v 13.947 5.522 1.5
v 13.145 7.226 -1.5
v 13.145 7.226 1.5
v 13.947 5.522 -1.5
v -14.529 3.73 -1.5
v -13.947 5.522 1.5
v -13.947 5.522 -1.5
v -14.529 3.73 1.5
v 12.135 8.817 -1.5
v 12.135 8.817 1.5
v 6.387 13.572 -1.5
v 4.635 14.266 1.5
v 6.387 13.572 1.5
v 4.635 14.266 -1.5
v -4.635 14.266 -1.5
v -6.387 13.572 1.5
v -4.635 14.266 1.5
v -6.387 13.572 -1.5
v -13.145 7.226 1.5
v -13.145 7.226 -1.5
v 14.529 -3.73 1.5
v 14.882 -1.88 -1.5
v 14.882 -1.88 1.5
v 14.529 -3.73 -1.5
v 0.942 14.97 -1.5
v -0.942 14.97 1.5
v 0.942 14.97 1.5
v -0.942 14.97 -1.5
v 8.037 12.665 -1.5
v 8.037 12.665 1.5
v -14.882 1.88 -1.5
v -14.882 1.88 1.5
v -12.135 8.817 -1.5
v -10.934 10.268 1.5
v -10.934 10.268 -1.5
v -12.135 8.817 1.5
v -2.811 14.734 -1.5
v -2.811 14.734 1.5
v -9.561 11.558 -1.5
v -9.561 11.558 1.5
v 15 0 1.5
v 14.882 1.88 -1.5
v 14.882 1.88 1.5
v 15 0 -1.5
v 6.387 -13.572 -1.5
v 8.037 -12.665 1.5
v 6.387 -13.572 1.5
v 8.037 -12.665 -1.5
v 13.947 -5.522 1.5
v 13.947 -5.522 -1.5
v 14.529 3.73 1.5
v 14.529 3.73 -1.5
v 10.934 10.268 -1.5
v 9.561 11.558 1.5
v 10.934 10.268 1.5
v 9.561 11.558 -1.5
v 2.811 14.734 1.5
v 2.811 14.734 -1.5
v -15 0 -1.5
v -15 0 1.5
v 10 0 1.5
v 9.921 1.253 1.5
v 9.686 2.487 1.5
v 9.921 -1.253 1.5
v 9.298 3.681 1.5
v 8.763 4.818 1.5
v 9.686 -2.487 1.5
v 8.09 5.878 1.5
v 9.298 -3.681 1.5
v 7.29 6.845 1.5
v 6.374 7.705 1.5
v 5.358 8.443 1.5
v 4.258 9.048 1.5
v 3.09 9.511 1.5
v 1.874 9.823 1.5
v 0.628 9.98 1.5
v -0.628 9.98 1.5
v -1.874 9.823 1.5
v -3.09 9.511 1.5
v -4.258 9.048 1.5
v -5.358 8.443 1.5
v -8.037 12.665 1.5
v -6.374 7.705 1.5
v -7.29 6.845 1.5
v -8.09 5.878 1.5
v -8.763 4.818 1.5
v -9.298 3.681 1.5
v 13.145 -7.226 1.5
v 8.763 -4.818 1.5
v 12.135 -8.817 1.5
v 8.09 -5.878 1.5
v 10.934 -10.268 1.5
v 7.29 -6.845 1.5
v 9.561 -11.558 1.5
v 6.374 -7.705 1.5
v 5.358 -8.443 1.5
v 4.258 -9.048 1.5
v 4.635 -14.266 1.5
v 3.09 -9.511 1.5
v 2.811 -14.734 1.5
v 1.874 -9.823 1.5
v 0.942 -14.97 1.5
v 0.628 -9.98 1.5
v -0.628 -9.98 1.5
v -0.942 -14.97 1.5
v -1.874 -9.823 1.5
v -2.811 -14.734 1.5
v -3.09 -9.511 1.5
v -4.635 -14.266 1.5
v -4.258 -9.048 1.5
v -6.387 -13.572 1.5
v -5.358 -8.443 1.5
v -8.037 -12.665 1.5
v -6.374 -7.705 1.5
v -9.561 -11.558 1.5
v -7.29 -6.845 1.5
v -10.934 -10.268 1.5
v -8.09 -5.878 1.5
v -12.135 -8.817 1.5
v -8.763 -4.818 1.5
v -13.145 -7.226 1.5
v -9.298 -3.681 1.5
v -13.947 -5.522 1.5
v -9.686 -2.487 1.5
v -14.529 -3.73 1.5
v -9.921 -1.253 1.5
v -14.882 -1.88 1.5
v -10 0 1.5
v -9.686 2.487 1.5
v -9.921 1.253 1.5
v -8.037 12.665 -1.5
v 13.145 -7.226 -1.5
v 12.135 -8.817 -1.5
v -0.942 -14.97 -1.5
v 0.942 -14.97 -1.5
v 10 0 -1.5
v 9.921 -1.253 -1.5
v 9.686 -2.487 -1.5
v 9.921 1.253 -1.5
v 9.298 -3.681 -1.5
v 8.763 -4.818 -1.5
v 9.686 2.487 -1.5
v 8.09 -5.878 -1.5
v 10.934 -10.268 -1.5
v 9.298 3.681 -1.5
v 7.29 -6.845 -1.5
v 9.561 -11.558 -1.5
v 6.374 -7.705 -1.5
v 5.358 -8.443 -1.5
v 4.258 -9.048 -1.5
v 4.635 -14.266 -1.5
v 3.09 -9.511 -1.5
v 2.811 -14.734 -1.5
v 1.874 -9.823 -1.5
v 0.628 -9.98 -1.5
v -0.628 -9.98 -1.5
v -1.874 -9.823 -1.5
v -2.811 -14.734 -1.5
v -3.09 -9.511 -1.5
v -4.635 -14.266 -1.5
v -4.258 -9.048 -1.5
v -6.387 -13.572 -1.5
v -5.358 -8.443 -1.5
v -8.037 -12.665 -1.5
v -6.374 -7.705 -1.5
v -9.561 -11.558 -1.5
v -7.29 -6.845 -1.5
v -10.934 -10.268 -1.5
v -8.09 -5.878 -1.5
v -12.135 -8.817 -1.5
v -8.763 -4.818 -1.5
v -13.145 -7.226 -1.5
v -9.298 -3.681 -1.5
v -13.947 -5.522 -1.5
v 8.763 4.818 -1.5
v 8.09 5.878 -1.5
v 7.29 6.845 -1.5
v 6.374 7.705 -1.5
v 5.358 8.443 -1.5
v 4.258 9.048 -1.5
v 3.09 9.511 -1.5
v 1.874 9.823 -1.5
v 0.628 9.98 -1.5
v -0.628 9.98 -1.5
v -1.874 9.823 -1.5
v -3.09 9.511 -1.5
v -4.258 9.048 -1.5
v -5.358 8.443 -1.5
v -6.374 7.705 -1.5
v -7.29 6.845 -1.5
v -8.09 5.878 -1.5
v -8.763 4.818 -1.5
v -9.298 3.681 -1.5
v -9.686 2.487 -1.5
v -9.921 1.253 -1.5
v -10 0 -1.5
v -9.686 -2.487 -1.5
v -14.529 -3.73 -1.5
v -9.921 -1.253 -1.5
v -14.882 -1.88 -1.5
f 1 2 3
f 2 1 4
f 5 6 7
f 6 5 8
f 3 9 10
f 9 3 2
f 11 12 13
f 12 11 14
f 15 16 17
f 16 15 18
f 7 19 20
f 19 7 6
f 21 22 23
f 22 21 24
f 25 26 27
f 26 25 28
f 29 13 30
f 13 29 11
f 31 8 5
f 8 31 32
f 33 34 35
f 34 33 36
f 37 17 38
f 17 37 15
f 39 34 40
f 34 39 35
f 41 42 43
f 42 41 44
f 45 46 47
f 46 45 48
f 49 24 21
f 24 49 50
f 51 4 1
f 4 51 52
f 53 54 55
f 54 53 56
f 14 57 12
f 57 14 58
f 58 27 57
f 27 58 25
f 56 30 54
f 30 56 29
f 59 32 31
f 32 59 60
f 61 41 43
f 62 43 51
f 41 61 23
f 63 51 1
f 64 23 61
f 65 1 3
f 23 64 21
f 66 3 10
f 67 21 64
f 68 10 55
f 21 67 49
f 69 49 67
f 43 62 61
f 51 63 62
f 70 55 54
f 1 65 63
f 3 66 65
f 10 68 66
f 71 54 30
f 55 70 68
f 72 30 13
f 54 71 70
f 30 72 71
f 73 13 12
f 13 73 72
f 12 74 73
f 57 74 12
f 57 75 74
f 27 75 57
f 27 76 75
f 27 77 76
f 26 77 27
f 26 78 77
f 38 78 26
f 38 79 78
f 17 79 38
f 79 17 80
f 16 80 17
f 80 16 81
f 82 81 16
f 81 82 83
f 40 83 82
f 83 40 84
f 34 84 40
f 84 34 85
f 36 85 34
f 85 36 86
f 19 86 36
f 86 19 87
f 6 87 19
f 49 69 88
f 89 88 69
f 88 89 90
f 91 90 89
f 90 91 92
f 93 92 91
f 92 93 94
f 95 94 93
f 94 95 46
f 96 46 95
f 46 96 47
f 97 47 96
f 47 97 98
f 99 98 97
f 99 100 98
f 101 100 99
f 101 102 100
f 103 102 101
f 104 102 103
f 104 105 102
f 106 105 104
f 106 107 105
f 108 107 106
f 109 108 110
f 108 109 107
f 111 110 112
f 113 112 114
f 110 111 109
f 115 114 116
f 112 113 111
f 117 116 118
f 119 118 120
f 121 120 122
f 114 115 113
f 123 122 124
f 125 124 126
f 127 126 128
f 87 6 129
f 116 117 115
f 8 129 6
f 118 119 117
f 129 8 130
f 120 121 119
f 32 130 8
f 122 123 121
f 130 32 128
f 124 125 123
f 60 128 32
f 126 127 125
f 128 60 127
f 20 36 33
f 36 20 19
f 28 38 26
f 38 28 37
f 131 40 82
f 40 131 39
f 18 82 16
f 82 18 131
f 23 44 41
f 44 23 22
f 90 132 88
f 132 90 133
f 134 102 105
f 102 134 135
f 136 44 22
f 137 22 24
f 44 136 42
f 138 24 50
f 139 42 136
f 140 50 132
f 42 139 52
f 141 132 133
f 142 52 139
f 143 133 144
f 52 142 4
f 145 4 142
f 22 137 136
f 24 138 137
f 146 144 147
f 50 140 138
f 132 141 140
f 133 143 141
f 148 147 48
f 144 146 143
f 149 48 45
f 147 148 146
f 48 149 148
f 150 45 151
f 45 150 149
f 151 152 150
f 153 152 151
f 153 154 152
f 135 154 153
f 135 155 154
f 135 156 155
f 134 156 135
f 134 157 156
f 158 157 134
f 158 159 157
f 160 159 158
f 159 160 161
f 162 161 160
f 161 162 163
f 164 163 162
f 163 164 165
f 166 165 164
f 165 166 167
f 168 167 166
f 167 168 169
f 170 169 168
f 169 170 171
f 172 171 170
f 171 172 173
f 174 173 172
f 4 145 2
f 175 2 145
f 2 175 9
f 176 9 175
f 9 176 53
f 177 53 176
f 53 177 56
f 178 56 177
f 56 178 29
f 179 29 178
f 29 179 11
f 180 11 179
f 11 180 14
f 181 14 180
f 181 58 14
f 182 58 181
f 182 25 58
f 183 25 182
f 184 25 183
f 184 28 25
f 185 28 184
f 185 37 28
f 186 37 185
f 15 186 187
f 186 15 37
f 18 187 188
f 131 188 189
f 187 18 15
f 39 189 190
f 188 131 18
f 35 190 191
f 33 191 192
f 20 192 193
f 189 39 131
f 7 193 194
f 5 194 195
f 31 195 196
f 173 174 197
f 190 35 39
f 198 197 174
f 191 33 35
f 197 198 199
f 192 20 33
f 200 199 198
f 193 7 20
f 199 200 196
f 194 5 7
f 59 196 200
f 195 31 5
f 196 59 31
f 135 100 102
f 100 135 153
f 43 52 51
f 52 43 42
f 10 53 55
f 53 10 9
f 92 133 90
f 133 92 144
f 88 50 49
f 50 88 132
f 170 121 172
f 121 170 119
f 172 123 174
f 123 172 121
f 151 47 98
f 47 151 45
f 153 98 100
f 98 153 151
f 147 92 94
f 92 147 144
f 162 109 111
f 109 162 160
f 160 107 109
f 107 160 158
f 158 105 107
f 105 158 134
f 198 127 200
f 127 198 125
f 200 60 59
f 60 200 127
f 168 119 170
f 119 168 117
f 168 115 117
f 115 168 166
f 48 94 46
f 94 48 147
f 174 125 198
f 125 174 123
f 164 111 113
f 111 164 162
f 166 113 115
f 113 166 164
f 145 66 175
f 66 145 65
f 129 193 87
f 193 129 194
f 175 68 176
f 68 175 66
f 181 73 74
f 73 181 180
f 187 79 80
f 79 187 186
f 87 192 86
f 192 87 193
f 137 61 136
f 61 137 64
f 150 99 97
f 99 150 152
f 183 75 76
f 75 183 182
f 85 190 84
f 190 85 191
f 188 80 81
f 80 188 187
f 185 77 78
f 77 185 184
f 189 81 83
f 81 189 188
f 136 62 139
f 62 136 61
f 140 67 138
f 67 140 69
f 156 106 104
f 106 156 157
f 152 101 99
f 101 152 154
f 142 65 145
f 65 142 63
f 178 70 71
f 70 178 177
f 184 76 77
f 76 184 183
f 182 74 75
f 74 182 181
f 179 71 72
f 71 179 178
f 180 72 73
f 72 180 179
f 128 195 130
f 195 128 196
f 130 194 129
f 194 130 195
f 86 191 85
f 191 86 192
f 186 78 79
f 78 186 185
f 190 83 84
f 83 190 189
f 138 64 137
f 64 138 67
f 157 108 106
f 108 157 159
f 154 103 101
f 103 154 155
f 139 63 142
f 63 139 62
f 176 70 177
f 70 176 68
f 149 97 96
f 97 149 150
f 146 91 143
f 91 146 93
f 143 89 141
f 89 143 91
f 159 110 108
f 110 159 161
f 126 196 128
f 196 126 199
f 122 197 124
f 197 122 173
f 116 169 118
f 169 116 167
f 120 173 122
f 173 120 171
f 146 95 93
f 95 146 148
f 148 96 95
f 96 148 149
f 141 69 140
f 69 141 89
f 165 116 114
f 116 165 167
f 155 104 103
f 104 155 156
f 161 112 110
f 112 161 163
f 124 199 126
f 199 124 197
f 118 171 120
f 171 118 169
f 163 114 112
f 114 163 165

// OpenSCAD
$fn = 50;


difference() {
	union() {
		translate(v = [0, 0, -1.5000000000]) {
			cylinder(h = 3, r = 15.0000000000);
		}
	}
	union() {
		translate(v = [0, 0, -100.0000000000]) {
			cylinder(h = 200, r = 10);
		}
	}
}
